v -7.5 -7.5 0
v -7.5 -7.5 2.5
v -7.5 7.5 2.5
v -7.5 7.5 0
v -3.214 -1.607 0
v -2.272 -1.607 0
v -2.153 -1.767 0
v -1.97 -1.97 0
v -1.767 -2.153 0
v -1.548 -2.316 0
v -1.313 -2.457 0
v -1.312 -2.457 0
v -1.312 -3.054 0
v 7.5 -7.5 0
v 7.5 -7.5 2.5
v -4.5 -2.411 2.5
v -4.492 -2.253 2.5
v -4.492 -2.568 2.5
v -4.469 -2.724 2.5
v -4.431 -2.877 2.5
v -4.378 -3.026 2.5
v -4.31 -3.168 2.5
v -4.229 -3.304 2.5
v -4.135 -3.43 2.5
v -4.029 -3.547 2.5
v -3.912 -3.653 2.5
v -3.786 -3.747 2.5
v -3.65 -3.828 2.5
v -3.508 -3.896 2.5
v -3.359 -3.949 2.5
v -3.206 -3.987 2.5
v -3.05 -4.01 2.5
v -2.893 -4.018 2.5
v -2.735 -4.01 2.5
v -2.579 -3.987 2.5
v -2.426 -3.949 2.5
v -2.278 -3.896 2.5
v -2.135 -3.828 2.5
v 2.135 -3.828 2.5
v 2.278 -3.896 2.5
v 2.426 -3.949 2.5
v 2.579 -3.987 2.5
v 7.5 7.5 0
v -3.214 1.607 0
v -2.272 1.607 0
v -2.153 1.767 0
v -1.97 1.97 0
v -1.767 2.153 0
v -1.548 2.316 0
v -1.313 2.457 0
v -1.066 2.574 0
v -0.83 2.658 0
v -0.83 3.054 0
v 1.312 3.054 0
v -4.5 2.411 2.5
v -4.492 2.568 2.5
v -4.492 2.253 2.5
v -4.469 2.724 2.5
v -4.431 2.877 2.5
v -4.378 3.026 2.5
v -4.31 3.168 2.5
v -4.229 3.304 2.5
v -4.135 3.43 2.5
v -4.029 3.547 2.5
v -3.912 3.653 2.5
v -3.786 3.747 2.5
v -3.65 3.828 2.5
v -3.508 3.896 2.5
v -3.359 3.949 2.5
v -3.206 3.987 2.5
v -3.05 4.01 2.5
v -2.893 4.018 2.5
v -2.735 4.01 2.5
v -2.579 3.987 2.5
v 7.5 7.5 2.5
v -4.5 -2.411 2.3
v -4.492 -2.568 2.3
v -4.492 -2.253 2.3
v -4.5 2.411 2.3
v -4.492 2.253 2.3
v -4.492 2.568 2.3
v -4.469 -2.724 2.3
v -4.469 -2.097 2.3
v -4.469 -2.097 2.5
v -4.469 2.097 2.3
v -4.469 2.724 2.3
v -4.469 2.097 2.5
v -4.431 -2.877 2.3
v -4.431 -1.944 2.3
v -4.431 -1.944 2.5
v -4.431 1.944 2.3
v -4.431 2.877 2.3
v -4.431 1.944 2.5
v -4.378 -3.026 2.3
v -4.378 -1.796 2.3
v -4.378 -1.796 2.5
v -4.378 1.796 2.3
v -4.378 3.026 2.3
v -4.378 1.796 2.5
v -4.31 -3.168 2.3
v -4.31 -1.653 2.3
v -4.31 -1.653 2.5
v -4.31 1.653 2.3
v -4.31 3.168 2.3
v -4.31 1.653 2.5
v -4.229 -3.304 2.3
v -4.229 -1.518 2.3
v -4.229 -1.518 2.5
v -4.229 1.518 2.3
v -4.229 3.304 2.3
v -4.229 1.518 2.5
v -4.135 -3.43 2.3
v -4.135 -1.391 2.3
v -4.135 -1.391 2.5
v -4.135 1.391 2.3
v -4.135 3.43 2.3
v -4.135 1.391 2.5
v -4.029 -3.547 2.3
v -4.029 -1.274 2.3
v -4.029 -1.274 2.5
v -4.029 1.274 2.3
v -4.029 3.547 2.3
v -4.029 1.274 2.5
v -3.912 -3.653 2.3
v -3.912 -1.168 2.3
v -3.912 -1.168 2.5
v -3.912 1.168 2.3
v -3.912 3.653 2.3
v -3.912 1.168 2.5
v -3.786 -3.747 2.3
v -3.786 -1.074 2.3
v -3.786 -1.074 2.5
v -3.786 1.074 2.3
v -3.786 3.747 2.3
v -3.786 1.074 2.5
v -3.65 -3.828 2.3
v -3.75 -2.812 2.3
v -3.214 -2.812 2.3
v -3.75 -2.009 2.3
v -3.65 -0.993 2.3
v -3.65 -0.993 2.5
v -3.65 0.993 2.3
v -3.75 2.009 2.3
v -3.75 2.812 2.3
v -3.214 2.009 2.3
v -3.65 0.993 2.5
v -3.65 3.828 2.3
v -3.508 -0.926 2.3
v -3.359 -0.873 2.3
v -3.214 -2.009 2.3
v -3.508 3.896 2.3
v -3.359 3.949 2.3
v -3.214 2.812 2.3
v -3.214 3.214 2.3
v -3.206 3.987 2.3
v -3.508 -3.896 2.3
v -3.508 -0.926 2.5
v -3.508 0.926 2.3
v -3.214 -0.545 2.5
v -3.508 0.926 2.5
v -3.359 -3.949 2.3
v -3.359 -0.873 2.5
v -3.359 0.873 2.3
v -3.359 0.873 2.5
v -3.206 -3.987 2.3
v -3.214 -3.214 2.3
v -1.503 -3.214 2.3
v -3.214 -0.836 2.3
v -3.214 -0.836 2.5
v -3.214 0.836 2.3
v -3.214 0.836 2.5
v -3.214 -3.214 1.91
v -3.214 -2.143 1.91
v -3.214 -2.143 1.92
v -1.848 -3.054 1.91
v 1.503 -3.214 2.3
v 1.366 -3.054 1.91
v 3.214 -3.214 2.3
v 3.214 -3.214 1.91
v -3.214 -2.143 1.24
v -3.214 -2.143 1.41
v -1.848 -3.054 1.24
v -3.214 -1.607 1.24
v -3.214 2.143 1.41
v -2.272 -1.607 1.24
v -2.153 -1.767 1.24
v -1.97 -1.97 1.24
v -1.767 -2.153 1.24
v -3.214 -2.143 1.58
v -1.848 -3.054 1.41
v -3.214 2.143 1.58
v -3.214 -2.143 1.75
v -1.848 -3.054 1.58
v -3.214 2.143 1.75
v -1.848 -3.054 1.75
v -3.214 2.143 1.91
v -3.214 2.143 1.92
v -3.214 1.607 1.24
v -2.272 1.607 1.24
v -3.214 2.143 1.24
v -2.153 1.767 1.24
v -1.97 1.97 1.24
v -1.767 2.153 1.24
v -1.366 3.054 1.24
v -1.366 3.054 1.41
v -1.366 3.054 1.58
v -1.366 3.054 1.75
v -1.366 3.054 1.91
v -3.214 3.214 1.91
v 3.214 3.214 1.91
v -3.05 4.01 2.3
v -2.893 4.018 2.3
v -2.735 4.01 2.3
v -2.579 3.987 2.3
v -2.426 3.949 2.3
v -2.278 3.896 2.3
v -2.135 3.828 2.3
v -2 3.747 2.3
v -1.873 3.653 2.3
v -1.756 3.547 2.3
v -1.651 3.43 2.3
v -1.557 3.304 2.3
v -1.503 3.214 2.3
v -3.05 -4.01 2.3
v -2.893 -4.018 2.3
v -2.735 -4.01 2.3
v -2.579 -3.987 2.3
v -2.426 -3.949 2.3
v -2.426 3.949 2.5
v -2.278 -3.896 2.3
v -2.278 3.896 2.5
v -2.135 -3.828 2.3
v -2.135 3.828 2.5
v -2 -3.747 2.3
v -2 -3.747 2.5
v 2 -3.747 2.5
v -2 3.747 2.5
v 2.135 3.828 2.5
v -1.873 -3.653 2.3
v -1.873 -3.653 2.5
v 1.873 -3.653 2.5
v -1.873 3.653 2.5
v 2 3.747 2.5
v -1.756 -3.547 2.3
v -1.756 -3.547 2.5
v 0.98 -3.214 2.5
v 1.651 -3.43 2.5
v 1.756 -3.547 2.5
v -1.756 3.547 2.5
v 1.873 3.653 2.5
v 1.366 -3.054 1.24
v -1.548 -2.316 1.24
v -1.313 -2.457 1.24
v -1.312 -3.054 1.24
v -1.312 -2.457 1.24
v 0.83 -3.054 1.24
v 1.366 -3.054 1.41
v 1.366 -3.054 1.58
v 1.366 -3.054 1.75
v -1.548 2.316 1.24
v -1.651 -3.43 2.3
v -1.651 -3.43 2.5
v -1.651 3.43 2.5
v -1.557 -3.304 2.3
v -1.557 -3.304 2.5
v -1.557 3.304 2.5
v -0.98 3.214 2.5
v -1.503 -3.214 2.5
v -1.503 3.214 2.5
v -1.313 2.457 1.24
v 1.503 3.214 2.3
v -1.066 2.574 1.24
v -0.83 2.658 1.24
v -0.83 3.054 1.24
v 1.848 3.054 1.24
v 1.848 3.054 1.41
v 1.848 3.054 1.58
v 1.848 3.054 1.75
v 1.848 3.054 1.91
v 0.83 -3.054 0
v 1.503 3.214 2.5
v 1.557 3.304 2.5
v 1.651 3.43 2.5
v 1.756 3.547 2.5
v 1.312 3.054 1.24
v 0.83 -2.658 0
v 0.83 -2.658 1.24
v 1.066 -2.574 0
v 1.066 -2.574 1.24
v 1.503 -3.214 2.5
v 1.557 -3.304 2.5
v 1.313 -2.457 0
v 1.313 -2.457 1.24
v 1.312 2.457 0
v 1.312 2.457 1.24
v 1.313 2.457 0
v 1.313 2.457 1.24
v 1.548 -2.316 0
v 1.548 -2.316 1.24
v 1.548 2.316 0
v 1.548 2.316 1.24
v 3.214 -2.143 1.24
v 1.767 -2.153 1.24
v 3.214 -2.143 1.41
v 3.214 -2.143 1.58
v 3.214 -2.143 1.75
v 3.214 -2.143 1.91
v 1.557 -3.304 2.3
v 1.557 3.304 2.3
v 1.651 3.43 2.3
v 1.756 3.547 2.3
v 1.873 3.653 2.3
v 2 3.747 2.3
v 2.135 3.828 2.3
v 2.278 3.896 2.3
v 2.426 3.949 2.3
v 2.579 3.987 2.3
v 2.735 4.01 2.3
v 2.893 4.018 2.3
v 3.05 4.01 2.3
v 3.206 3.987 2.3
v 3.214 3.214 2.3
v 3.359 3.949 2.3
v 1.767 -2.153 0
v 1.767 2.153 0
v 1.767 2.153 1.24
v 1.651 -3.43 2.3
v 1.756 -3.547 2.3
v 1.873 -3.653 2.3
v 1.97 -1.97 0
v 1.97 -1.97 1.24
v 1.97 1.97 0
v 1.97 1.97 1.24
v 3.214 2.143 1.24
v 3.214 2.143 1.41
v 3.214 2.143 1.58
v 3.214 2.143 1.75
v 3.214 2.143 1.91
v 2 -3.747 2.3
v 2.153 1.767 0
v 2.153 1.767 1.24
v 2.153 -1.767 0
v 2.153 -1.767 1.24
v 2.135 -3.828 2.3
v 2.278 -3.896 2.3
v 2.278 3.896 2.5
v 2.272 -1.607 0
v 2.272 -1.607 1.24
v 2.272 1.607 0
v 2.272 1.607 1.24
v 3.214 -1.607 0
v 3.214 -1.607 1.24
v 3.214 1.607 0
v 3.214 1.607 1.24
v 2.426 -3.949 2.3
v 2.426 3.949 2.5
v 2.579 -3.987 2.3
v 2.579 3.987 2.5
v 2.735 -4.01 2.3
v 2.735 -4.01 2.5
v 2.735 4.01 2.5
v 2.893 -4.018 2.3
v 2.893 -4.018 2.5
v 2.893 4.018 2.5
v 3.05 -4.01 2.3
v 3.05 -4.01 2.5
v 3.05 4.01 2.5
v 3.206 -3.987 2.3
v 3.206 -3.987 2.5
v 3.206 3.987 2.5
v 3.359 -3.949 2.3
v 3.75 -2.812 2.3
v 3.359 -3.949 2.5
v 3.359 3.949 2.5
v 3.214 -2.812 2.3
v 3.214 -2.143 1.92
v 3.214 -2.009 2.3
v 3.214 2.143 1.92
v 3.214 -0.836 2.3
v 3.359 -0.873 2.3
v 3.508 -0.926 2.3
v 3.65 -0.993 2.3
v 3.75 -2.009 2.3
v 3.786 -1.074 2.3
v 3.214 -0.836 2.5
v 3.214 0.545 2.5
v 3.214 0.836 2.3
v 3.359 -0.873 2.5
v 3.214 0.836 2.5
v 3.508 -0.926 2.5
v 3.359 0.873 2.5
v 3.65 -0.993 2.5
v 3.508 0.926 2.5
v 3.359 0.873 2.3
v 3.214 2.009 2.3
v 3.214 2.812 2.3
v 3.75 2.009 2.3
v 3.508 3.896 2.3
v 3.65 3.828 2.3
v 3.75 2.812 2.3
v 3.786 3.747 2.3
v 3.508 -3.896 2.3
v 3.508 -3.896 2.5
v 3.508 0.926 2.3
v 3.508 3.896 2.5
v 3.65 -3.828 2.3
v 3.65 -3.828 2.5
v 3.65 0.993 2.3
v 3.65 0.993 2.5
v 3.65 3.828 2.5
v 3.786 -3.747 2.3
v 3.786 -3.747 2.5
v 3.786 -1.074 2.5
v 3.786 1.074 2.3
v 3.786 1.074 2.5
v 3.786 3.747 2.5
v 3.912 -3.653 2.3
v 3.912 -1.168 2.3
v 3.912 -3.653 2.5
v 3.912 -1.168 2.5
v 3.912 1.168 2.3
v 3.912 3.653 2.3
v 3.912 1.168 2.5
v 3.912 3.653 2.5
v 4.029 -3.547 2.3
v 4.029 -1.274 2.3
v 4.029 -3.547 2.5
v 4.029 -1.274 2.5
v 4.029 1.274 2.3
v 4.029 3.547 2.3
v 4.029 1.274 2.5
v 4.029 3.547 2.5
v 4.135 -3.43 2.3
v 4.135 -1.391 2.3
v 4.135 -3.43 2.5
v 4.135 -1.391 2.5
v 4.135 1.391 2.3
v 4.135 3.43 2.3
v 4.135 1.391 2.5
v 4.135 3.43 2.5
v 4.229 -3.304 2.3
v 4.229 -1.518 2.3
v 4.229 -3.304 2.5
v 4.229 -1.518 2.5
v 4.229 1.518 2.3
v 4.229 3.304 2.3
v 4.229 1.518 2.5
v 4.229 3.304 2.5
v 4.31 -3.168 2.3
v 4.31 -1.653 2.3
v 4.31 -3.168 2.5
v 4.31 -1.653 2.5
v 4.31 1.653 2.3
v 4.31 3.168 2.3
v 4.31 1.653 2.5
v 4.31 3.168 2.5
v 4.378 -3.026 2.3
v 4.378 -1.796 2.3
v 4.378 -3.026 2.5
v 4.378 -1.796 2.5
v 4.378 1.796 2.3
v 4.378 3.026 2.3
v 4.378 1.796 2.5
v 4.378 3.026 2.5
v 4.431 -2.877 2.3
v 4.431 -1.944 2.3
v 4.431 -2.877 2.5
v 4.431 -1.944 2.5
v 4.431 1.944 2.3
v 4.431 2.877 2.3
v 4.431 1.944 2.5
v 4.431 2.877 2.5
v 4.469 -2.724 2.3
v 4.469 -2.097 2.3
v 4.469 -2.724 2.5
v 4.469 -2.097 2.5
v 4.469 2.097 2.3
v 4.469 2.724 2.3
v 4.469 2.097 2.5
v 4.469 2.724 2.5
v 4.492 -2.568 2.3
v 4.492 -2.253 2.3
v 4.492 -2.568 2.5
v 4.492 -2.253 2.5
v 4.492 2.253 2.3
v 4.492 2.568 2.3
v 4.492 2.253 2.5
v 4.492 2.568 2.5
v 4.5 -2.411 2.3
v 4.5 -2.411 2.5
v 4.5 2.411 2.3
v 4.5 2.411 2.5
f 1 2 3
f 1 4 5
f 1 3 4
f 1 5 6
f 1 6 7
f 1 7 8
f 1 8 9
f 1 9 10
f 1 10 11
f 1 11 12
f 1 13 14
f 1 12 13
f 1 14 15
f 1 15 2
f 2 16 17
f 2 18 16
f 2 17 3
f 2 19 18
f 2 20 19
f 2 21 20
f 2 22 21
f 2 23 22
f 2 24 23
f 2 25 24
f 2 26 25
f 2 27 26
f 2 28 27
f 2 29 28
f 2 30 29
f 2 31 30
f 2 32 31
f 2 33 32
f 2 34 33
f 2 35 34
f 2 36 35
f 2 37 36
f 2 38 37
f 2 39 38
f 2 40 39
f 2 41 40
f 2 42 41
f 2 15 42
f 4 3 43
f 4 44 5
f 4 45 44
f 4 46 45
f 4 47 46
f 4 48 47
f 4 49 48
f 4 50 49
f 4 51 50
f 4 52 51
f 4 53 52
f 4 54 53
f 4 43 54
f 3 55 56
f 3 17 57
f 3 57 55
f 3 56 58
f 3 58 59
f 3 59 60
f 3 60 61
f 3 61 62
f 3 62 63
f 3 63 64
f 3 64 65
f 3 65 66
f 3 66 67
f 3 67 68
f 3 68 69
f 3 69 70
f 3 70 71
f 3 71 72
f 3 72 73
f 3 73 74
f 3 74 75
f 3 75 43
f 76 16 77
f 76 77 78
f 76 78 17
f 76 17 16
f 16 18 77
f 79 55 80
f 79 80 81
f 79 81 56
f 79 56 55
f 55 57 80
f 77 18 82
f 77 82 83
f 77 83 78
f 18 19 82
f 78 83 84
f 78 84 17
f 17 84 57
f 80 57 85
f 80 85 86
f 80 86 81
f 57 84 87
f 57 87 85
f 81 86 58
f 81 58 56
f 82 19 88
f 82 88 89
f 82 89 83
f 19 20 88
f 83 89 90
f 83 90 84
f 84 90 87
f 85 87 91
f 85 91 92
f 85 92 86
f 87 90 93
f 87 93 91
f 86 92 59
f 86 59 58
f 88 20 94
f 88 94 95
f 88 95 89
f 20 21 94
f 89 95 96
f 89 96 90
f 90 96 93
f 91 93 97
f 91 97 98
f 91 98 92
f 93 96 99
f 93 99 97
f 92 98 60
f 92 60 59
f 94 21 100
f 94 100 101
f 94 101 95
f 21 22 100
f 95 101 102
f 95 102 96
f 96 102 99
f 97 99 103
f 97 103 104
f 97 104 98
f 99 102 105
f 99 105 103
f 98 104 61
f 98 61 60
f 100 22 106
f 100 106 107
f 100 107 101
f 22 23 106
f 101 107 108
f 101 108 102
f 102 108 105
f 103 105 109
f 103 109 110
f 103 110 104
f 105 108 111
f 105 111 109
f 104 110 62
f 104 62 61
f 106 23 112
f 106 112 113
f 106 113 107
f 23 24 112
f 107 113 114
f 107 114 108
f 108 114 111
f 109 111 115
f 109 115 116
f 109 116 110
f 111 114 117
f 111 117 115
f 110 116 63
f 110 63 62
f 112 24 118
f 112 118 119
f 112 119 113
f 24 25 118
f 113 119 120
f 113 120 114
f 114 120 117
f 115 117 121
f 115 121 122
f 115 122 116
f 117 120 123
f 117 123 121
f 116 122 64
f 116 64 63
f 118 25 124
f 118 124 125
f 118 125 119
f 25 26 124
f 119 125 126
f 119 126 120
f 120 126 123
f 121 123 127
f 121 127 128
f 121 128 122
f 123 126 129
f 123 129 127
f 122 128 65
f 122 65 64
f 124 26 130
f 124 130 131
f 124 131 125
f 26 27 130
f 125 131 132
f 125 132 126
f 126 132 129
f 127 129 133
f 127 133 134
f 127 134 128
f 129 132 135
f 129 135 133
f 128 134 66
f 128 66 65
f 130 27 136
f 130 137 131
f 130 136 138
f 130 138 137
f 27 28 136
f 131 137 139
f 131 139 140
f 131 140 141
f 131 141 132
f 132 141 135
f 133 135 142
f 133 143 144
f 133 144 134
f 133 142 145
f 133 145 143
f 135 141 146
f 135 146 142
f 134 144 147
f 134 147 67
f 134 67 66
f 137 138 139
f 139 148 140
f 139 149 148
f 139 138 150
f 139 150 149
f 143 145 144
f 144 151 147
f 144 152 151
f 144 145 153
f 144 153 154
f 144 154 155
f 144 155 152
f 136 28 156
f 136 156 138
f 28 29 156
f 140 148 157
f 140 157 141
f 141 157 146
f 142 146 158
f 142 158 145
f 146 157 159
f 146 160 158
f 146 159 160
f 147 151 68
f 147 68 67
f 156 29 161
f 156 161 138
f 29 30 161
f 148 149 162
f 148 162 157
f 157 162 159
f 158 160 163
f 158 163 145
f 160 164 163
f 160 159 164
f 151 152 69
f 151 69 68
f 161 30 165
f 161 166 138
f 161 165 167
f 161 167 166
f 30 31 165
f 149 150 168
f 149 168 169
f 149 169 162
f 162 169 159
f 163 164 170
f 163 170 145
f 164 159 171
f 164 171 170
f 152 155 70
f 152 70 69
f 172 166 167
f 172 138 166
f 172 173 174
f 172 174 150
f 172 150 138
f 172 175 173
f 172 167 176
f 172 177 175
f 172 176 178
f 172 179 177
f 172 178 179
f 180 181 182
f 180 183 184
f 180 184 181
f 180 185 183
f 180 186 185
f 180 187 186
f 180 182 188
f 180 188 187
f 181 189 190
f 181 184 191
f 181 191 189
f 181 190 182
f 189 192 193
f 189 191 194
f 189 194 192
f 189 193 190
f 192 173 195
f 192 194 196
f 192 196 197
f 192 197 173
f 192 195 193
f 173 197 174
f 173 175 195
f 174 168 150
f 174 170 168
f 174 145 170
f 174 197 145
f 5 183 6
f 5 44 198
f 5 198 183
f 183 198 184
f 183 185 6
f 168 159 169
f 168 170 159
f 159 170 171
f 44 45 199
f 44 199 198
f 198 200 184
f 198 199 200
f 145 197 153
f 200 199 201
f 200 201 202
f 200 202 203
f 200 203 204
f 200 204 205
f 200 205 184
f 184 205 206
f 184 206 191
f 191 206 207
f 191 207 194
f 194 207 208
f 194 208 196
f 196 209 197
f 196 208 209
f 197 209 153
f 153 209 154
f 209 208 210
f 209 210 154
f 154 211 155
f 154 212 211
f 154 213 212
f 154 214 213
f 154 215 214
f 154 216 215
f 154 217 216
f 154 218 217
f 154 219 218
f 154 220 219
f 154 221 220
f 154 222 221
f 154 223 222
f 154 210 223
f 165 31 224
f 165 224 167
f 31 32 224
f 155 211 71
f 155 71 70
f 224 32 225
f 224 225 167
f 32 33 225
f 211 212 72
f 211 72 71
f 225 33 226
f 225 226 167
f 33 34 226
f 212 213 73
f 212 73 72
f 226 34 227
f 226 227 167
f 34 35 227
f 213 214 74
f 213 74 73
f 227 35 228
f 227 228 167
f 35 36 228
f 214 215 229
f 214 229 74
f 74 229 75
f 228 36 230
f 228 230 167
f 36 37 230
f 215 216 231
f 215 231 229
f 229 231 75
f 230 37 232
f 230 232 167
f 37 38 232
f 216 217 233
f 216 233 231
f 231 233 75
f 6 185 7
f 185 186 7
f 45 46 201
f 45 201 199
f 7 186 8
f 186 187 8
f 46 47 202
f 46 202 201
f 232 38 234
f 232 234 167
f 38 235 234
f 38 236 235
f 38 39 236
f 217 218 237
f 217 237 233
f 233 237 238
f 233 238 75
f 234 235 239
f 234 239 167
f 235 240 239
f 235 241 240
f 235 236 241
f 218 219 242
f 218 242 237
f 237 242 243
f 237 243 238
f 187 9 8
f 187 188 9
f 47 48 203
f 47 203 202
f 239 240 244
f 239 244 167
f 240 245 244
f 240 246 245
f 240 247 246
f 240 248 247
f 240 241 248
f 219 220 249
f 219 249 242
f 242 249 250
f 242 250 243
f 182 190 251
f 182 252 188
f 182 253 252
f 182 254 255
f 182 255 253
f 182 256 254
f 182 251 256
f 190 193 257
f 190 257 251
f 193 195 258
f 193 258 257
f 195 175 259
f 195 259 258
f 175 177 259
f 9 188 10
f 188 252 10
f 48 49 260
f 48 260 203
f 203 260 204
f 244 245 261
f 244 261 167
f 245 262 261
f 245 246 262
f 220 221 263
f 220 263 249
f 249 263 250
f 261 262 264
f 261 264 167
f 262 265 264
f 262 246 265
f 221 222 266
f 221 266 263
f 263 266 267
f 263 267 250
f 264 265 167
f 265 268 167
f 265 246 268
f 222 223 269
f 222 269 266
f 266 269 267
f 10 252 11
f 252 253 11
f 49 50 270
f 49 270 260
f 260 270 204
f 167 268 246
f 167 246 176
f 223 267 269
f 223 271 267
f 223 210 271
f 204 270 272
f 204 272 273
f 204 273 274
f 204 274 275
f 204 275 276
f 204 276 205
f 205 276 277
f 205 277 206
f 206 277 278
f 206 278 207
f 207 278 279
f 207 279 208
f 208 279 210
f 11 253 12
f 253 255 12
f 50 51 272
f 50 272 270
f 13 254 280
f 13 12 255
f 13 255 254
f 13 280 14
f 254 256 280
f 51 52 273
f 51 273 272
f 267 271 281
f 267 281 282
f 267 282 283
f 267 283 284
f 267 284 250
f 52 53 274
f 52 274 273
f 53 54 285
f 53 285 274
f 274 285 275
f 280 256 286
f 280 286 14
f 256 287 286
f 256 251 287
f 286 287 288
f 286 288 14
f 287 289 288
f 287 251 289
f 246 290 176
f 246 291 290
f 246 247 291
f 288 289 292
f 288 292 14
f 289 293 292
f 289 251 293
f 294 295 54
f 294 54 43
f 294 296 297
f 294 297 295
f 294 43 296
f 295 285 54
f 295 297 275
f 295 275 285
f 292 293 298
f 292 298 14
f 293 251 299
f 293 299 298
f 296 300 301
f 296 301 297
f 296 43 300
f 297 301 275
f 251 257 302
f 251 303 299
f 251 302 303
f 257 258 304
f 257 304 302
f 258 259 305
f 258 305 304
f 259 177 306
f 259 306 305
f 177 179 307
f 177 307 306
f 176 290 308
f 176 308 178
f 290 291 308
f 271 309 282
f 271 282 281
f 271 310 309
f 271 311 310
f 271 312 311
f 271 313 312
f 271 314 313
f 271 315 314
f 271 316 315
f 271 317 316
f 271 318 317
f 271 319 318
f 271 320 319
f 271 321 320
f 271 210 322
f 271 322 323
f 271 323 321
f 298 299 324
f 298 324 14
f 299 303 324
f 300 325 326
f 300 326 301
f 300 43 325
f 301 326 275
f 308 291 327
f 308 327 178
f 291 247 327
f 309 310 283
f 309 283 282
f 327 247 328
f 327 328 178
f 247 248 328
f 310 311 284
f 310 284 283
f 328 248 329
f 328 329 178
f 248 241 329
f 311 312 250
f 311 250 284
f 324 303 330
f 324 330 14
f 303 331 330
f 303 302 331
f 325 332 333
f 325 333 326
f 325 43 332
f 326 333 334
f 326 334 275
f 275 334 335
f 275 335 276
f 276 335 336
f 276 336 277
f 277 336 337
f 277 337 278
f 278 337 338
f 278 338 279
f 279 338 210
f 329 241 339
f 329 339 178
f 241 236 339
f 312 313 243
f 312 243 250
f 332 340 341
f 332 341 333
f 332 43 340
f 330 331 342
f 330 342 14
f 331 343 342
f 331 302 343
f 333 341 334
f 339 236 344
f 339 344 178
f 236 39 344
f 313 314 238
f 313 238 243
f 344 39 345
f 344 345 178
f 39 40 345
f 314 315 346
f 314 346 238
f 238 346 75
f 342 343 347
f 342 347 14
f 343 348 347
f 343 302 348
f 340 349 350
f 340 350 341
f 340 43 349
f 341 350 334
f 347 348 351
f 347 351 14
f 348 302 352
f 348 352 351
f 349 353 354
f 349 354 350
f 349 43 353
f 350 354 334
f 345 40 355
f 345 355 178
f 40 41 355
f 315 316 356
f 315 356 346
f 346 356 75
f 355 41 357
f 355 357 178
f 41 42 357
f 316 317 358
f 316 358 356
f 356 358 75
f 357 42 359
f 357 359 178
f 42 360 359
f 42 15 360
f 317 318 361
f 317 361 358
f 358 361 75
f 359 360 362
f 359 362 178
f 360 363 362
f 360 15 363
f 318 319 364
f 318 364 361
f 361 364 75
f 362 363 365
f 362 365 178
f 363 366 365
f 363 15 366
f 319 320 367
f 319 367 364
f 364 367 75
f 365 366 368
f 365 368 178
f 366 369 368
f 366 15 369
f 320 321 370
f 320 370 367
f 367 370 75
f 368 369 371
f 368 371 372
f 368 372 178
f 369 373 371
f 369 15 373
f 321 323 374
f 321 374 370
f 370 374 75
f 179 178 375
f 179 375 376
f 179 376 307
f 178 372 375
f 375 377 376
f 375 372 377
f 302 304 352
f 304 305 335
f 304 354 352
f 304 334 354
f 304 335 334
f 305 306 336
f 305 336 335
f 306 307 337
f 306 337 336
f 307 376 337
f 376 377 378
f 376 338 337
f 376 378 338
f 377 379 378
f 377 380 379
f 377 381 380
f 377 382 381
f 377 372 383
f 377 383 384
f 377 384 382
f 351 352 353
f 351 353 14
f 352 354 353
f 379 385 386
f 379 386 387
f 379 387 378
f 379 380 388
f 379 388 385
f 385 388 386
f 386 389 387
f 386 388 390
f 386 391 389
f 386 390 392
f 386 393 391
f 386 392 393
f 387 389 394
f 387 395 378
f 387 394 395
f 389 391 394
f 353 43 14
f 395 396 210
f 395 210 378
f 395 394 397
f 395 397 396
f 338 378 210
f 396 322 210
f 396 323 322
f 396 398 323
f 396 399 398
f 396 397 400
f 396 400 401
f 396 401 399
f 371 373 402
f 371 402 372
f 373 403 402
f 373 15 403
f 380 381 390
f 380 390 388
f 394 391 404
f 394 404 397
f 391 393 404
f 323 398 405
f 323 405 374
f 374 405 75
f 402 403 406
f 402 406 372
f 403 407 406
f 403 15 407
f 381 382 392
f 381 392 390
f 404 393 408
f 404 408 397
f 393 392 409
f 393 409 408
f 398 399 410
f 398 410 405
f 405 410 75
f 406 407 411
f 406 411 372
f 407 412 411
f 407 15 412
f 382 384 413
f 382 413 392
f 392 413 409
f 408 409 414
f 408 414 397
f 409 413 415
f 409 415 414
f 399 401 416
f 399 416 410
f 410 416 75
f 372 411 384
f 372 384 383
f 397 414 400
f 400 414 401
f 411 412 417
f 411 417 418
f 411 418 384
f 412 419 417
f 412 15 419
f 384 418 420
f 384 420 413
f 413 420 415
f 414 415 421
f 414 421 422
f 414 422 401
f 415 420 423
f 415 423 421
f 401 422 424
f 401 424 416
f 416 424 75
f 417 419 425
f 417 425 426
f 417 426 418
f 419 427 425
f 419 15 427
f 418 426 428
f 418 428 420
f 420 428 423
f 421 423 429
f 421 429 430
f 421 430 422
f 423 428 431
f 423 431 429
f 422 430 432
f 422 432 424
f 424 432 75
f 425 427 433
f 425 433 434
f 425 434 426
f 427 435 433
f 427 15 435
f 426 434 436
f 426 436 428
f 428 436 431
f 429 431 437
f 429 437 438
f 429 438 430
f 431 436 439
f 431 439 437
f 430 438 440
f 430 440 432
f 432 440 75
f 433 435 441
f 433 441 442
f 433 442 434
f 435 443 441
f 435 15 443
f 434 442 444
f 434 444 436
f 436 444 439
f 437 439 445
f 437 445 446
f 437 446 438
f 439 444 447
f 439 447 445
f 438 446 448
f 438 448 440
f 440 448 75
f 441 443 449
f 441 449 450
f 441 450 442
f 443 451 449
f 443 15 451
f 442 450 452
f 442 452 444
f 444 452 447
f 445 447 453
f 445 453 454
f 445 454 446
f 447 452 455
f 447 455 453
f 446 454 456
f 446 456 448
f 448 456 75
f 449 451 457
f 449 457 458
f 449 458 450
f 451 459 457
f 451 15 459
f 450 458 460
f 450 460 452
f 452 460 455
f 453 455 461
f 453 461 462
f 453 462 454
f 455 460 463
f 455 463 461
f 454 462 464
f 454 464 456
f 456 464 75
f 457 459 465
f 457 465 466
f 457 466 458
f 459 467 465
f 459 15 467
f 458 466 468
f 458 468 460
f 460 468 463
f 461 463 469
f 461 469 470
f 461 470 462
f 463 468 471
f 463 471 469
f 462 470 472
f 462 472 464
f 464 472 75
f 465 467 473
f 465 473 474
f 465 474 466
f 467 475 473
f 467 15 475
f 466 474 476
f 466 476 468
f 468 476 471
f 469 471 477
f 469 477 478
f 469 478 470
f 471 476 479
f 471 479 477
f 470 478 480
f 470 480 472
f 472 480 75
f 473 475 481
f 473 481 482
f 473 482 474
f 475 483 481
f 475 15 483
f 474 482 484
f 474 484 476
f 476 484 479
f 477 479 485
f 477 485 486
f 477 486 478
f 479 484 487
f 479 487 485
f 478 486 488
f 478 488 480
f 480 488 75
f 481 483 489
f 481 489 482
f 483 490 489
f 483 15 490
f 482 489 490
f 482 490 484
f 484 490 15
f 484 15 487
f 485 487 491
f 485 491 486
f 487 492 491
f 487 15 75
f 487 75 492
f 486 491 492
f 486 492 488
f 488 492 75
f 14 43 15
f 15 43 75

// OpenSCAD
// Start: lazy_union
default_5_default_5();
// End: lazy_union

// Modules.

// 'PartMaterial undef-default - default 5.0'
module default_5_default_5() {
  // 'None : _combine_solids_and_holes'
  union() {
    // '_combine_solids_and_holes'
    difference() {
      // 'default : _combine_solids_and_holes'
      union() {
        // 'test_plate'
        multmatrix(m=[[1.0, 0.0, 0.0, -7.5], [0.0, 1.0, 0.0, -7.5], [0.0, 0.0, 1.0, 0.0], [0.0, 0.0, 0.0, 1.0]]) {
          // 'test_plate : _combine_solids_and_holes'
          union() {
            // 'test_plate'
            cube(size=[15.0, 15.0, 2.5]);
          }
        }
      }
      // 'default'
      multmatrix(m=[[1.0714285714285714, 0.0, 0.0, 0.0], [0.0, -1.0714285714285714, 0.0, 0.0], [0.0, 0.0, -1.0, 1.25], [0.0, 0.0, 0.0, 1.0]]) {
        // 'evq_hole : _combine_solids_and_holes'
        union() {
          // 'evq : _combine_solids_and_holes'
          union() {
            // 'post'
            multmatrix(m=[[1.0, 0.0, 0.0, 0.0], [-0.0, -1.0, -0.0, -0.0], [-0.0, -0.0, -1.0, 0.6749999999999998], [0.0, 0.0, 0.0, 1.0]]) {
              // 'post : _combine_solids_and_holes'
              union() {
                // 'master'
                multmatrix(m=[[1.0, 0.0, 0.0, 0.0], [-0.0, -1.0, -0.0, -0.0], [-0.0, -0.0, -1.0, 0.6749999999999998], [0.0, 0.0, 0.0, 1.0]]) {
                  // 'master : _combine_solids_and_holes'
                  union() {
                    // 'master'
                    cylinder(h=1.3499999999999996, r1=2.6, r2=2.6, center=false, $fn=64);
                  }
                }
                // 'block1'
                multmatrix(m=[[1.0, 0.0, 0.0, -3.0], [0.0, 1.0, 0.0, -1.5], [0.0, 0.0, 1.0, -0.6749999999999998], [0.0, 0.0, 0.0, 1.0]]) {
                  // 'block1 : _combine_solids_and_holes'
                  union() {
                    // 'block1'
                    cube(size=[6.0, 3.0, 1.3499999999999996]);
                  }
                }
                // ('block2', 0)
                multmatrix(m=[[1.0, 0.0, 0.0, -1.225], [-0.0, -1.0, -0.0, -0.0], [-0.0, -0.0, -1.0, 0.6749999999999998], [0.0, 0.0, 0.0, 1.0]]) {
                  // "('block2', 0) : _combine_solids_and_holes"
                  union() {
                    // ('block2', 0)
                    cube(size=[2.0, 2.85, 1.3499999999999996]);
                  }
                }
                // ('block2', 1)
                multmatrix(m=[[1.0, 0.0, 0.0, -0.7749999999999999], [0.0, 1.0, 0.0, 0.0], [0.0, 0.0, 1.0, -0.6749999999999998], [0.0, 0.0, 0.0, 1.0]]) {
                  // "('block2', 1) : _combine_solids_and_holes"
                  union() {
                    // ('block2', 1)
                    cube(size=[2.0, 2.85, 1.3499999999999996]);
                  }
                }
              }
            }
            // 'plunger'
            multmatrix(m=[[1.0, 0.0, 0.0, 0.0], [0.0, -1.0, 0.0, 0.0], [0.0, 0.0, -1.0, 2.0599999999999996], [0.0, 0.0, 0.0, 1.0]]) {
              // 'plunger : _combine_solids_and_holes'
              union() {
                // 'plunger'
                multmatrix(m=[[1.0, 0.0, 0.0, 0.0], [-0.0, -1.0, -0.0, -0.0], [-0.0, -0.0, -1.0, 0.7], [0.0, 0.0, 0.0, 1.0]]) {
                  // 'plunger : _combine_solids_and_holes'
                  union() {
                    // 'plunger'
                    cylinder(h=1.4, r1=2.325, r2=2.325, center=false, $fn=64);
                  }
                }
                // 'tab'
                multmatrix(m=[[1.0, 0.0, 0.0, -0.5], [0.0, 1.0, 0.0, -2.6], [0.0, 0.0, 1.0, -0.7], [0.0, 0.0, 0.0, 1.0]]) {
                  // 'tab : _combine_solids_and_holes'
                  union() {
                    // 'tab'
                    cube(size=[1.0, 5.2, 1.4]);
                  }
                }
              }
            }
            // 'centre_plate'
            multmatrix(m=[[0.0, 0.0, 1.0, -3.0], [-1.0, 0.0, 0.0, 2.0], [0.0, -1.0, 0.0, 0.01], [0.0, 0.0, 0.0, 1.0]]) {
              // 'centre_plate : _combine_solids_and_holes'
              union() {
                // 'centre_plate'
                multmatrix(m=[[-0.0, -1.0, -0.0, 2.0], [0.0, 0.0, 1.0, 0.0], [-1.0, -0.0, -0.0, 3.0], [0.0, 0.0, 0.0, 1.0]]) {
                  // 'centre_plate : _combine_solids_and_holes'
                  union() {
                    // 'centre_plate'
                    linear_extrude(height=0.6800000000000002, twist=0.0, slices=4, scale=[1.0, 1.0], $fn=64) {
                      polygon(points=[[3.0, 2.0], [3.0, -2.0], [1.275, -2.85], [-1.725, -2.85], [-3.0, -2.0], [-3.0, 2.0], [-1.275, 2.85], [1.725, 2.85]]);
                    }
                  }
                }
              }
            }
            // 'base_plate'
            multmatrix(m=[[0.0, 1.0, 0.0, -3.0], [-1.0, 0.0, 0.0, 3.0], [0.0, 0.0, 1.0, -2.2], [0.0, 0.0, 0.0, 1.0]]) {
              // 'base_plate : _combine_solids_and_holes'
              union() {
                // 'base_plate'
                cube(size=[6.0, 6.0, 1.54]);
              }
            }
            // ('terminal', 0)
            multmatrix(m=[[0.0, 1.0, 0.0, 2.7], [-1.0, 0.0, 0.0, 2.25], [0.0, 0.0, 1.0, -1.6250000000000002], [0.0, 0.0, 0.0, 1.0]]) {
              // "('terminal', 0) : _combine_solids_and_holes"
              union() {
                // 'terminal'
                multmatrix(m=[[1.0, 0.0, 0.0, -0.375], [0.0, 1.0, 0.0, -0.8], [0.0, 0.0, 1.0, -0.575], [0.0, 0.0, 0.0, 1.0]]) {
                  // 'terminal'
                  color(c=[0.7529411764705882, 0.7529411764705882, 0.7529411764705882, 1.0]) {
                    // 'terminal : _combine_solids_and_holes'
                    union() {
                      // 'terminal'
                      cube(size=[0.75, 1.6, 1.15]);
                    }
                  }
                }
              }
            }
            // ('terminal', 1)
            multmatrix(m=[[0.0, 1.0, 0.0, 2.7], [-1.0, 0.0, 0.0, -2.25], [0.0, 0.0, 1.0, -1.6250000000000002], [0.0, 0.0, 0.0, 1.0]]) {
              // "('terminal', 1) : _combine_solids_and_holes"
              union() {
                // 'terminal'
                multmatrix(m=[[1.0, 0.0, 0.0, -0.375], [0.0, 1.0, 0.0, -0.8], [0.0, 0.0, 1.0, -0.575], [0.0, 0.0, 0.0, 1.0]]) {
                  // 'terminal'
                  color(c=[0.7529411764705882, 0.7529411764705882, 0.7529411764705882, 1.0]) {
                    // 'terminal : _combine_solids_and_holes'
                    union() {
                      // 'terminal'
                      cube(size=[0.75, 1.6, 1.15]);
                    }
                  }
                }
              }
            }
            // ('terminal', 2)
            multmatrix(m=[[0.0, -1.0, 0.0, -2.7], [1.0, 0.0, 0.0, -2.25], [0.0, 0.0, 1.0, -1.6250000000000002], [0.0, 0.0, 0.0, 1.0]]) {
              // "('terminal', 2) : _combine_solids_and_holes"
              union() {
                // 'terminal'
                multmatrix(m=[[1.0, 0.0, 0.0, -0.375], [0.0, 1.0, 0.0, -0.8], [0.0, 0.0, 1.0, -0.575], [0.0, 0.0, 0.0, 1.0]]) {
                  // 'terminal'
                  color(c=[0.7529411764705882, 0.7529411764705882, 0.7529411764705882, 1.0]) {
                    // 'terminal : _combine_solids_and_holes'
                    union() {
                      // 'terminal'
                      cube(size=[0.75, 1.6, 1.15]);
                    }
                  }
                }
              }
            }
            // ('terminal', 3)
            multmatrix(m=[[0.0, -1.0, 0.0, -2.7], [1.0, 0.0, 0.0, 2.25], [0.0, 0.0, 1.0, -1.6250000000000002], [0.0, 0.0, 0.0, 1.0]]) {
              // "('terminal', 3) : _combine_solids_and_holes"
              union() {
                // 'terminal'
                multmatrix(m=[[1.0, 0.0, 0.0, -0.375], [0.0, 1.0, 0.0, -0.8], [0.0, 0.0, 1.0, -0.575], [0.0, 0.0, 0.0, 1.0]]) {
                  // 'terminal'
                  color(c=[0.7529411764705882, 0.7529411764705882, 0.7529411764705882, 1.0]) {
                    // 'terminal : _combine_solids_and_holes'
                    union() {
                      // 'terminal'
                      cube(size=[0.75, 1.6, 1.15]);
                    }
                  }
                }
              }
            }
          }
          // ('terminal_hole', 0)
          multmatrix(m=[[0.0, 1.0, 0.0, 2.7], [-1.0, 0.0, 0.0, 2.25], [0.0, 0.0, 1.0, -7.050000000000001], [0.0, 0.0, 0.0, 1.0]]) {
            // "('terminal_hole', 0) : _combine_solids_and_holes"
            union() {
              // ('terminal_hole', 0)
              cylinder(h=6.0, r1=1.5, r2=1.5, center=false, $fn=64);
            }
          }
          // ('terminal_hole', 1)
          multmatrix(m=[[0.0, 1.0, 0.0, 2.7], [-1.0, 0.0, 0.0, -2.25], [0.0, 0.0, 1.0, -7.050000000000001], [0.0, 0.0, 0.0, 1.0]]) {
            // "('terminal_hole', 1) : _combine_solids_and_holes"
            union() {
              // ('terminal_hole', 1)
              cylinder(h=6.0, r1=1.5, r2=1.5, center=false, $fn=64);
            }
          }
          // ('terminal_hole', 2)
          multmatrix(m=[[0.0, -1.0, 0.0, -2.7], [1.0, 0.0, 0.0, -2.25], [0.0, 0.0, 1.0, -7.050000000000001], [0.0, 0.0, 0.0, 1.0]]) {
            // "('terminal_hole', 2) : _combine_solids_and_holes"
            union() {
              // ('terminal_hole', 2)
              cylinder(h=6.0, r1=1.5, r2=1.5, center=false, $fn=64);
            }
          }
          // ('terminal_hole', 3)
          multmatrix(m=[[0.0, -1.0, 0.0, -2.7], [1.0, 0.0, 0.0, 2.25], [0.0, 0.0, 1.0, -7.050000000000001], [0.0, 0.0, 0.0, 1.0]]) {
            // "('terminal_hole', 3) : _combine_solids_and_holes"
            union() {
              // ('terminal_hole', 3)
              cylinder(h=6.0, r1=1.5, r2=1.5, center=false, $fn=64);
            }
          }
        }
      }
    }
  }
} // end module default_5_default_5
